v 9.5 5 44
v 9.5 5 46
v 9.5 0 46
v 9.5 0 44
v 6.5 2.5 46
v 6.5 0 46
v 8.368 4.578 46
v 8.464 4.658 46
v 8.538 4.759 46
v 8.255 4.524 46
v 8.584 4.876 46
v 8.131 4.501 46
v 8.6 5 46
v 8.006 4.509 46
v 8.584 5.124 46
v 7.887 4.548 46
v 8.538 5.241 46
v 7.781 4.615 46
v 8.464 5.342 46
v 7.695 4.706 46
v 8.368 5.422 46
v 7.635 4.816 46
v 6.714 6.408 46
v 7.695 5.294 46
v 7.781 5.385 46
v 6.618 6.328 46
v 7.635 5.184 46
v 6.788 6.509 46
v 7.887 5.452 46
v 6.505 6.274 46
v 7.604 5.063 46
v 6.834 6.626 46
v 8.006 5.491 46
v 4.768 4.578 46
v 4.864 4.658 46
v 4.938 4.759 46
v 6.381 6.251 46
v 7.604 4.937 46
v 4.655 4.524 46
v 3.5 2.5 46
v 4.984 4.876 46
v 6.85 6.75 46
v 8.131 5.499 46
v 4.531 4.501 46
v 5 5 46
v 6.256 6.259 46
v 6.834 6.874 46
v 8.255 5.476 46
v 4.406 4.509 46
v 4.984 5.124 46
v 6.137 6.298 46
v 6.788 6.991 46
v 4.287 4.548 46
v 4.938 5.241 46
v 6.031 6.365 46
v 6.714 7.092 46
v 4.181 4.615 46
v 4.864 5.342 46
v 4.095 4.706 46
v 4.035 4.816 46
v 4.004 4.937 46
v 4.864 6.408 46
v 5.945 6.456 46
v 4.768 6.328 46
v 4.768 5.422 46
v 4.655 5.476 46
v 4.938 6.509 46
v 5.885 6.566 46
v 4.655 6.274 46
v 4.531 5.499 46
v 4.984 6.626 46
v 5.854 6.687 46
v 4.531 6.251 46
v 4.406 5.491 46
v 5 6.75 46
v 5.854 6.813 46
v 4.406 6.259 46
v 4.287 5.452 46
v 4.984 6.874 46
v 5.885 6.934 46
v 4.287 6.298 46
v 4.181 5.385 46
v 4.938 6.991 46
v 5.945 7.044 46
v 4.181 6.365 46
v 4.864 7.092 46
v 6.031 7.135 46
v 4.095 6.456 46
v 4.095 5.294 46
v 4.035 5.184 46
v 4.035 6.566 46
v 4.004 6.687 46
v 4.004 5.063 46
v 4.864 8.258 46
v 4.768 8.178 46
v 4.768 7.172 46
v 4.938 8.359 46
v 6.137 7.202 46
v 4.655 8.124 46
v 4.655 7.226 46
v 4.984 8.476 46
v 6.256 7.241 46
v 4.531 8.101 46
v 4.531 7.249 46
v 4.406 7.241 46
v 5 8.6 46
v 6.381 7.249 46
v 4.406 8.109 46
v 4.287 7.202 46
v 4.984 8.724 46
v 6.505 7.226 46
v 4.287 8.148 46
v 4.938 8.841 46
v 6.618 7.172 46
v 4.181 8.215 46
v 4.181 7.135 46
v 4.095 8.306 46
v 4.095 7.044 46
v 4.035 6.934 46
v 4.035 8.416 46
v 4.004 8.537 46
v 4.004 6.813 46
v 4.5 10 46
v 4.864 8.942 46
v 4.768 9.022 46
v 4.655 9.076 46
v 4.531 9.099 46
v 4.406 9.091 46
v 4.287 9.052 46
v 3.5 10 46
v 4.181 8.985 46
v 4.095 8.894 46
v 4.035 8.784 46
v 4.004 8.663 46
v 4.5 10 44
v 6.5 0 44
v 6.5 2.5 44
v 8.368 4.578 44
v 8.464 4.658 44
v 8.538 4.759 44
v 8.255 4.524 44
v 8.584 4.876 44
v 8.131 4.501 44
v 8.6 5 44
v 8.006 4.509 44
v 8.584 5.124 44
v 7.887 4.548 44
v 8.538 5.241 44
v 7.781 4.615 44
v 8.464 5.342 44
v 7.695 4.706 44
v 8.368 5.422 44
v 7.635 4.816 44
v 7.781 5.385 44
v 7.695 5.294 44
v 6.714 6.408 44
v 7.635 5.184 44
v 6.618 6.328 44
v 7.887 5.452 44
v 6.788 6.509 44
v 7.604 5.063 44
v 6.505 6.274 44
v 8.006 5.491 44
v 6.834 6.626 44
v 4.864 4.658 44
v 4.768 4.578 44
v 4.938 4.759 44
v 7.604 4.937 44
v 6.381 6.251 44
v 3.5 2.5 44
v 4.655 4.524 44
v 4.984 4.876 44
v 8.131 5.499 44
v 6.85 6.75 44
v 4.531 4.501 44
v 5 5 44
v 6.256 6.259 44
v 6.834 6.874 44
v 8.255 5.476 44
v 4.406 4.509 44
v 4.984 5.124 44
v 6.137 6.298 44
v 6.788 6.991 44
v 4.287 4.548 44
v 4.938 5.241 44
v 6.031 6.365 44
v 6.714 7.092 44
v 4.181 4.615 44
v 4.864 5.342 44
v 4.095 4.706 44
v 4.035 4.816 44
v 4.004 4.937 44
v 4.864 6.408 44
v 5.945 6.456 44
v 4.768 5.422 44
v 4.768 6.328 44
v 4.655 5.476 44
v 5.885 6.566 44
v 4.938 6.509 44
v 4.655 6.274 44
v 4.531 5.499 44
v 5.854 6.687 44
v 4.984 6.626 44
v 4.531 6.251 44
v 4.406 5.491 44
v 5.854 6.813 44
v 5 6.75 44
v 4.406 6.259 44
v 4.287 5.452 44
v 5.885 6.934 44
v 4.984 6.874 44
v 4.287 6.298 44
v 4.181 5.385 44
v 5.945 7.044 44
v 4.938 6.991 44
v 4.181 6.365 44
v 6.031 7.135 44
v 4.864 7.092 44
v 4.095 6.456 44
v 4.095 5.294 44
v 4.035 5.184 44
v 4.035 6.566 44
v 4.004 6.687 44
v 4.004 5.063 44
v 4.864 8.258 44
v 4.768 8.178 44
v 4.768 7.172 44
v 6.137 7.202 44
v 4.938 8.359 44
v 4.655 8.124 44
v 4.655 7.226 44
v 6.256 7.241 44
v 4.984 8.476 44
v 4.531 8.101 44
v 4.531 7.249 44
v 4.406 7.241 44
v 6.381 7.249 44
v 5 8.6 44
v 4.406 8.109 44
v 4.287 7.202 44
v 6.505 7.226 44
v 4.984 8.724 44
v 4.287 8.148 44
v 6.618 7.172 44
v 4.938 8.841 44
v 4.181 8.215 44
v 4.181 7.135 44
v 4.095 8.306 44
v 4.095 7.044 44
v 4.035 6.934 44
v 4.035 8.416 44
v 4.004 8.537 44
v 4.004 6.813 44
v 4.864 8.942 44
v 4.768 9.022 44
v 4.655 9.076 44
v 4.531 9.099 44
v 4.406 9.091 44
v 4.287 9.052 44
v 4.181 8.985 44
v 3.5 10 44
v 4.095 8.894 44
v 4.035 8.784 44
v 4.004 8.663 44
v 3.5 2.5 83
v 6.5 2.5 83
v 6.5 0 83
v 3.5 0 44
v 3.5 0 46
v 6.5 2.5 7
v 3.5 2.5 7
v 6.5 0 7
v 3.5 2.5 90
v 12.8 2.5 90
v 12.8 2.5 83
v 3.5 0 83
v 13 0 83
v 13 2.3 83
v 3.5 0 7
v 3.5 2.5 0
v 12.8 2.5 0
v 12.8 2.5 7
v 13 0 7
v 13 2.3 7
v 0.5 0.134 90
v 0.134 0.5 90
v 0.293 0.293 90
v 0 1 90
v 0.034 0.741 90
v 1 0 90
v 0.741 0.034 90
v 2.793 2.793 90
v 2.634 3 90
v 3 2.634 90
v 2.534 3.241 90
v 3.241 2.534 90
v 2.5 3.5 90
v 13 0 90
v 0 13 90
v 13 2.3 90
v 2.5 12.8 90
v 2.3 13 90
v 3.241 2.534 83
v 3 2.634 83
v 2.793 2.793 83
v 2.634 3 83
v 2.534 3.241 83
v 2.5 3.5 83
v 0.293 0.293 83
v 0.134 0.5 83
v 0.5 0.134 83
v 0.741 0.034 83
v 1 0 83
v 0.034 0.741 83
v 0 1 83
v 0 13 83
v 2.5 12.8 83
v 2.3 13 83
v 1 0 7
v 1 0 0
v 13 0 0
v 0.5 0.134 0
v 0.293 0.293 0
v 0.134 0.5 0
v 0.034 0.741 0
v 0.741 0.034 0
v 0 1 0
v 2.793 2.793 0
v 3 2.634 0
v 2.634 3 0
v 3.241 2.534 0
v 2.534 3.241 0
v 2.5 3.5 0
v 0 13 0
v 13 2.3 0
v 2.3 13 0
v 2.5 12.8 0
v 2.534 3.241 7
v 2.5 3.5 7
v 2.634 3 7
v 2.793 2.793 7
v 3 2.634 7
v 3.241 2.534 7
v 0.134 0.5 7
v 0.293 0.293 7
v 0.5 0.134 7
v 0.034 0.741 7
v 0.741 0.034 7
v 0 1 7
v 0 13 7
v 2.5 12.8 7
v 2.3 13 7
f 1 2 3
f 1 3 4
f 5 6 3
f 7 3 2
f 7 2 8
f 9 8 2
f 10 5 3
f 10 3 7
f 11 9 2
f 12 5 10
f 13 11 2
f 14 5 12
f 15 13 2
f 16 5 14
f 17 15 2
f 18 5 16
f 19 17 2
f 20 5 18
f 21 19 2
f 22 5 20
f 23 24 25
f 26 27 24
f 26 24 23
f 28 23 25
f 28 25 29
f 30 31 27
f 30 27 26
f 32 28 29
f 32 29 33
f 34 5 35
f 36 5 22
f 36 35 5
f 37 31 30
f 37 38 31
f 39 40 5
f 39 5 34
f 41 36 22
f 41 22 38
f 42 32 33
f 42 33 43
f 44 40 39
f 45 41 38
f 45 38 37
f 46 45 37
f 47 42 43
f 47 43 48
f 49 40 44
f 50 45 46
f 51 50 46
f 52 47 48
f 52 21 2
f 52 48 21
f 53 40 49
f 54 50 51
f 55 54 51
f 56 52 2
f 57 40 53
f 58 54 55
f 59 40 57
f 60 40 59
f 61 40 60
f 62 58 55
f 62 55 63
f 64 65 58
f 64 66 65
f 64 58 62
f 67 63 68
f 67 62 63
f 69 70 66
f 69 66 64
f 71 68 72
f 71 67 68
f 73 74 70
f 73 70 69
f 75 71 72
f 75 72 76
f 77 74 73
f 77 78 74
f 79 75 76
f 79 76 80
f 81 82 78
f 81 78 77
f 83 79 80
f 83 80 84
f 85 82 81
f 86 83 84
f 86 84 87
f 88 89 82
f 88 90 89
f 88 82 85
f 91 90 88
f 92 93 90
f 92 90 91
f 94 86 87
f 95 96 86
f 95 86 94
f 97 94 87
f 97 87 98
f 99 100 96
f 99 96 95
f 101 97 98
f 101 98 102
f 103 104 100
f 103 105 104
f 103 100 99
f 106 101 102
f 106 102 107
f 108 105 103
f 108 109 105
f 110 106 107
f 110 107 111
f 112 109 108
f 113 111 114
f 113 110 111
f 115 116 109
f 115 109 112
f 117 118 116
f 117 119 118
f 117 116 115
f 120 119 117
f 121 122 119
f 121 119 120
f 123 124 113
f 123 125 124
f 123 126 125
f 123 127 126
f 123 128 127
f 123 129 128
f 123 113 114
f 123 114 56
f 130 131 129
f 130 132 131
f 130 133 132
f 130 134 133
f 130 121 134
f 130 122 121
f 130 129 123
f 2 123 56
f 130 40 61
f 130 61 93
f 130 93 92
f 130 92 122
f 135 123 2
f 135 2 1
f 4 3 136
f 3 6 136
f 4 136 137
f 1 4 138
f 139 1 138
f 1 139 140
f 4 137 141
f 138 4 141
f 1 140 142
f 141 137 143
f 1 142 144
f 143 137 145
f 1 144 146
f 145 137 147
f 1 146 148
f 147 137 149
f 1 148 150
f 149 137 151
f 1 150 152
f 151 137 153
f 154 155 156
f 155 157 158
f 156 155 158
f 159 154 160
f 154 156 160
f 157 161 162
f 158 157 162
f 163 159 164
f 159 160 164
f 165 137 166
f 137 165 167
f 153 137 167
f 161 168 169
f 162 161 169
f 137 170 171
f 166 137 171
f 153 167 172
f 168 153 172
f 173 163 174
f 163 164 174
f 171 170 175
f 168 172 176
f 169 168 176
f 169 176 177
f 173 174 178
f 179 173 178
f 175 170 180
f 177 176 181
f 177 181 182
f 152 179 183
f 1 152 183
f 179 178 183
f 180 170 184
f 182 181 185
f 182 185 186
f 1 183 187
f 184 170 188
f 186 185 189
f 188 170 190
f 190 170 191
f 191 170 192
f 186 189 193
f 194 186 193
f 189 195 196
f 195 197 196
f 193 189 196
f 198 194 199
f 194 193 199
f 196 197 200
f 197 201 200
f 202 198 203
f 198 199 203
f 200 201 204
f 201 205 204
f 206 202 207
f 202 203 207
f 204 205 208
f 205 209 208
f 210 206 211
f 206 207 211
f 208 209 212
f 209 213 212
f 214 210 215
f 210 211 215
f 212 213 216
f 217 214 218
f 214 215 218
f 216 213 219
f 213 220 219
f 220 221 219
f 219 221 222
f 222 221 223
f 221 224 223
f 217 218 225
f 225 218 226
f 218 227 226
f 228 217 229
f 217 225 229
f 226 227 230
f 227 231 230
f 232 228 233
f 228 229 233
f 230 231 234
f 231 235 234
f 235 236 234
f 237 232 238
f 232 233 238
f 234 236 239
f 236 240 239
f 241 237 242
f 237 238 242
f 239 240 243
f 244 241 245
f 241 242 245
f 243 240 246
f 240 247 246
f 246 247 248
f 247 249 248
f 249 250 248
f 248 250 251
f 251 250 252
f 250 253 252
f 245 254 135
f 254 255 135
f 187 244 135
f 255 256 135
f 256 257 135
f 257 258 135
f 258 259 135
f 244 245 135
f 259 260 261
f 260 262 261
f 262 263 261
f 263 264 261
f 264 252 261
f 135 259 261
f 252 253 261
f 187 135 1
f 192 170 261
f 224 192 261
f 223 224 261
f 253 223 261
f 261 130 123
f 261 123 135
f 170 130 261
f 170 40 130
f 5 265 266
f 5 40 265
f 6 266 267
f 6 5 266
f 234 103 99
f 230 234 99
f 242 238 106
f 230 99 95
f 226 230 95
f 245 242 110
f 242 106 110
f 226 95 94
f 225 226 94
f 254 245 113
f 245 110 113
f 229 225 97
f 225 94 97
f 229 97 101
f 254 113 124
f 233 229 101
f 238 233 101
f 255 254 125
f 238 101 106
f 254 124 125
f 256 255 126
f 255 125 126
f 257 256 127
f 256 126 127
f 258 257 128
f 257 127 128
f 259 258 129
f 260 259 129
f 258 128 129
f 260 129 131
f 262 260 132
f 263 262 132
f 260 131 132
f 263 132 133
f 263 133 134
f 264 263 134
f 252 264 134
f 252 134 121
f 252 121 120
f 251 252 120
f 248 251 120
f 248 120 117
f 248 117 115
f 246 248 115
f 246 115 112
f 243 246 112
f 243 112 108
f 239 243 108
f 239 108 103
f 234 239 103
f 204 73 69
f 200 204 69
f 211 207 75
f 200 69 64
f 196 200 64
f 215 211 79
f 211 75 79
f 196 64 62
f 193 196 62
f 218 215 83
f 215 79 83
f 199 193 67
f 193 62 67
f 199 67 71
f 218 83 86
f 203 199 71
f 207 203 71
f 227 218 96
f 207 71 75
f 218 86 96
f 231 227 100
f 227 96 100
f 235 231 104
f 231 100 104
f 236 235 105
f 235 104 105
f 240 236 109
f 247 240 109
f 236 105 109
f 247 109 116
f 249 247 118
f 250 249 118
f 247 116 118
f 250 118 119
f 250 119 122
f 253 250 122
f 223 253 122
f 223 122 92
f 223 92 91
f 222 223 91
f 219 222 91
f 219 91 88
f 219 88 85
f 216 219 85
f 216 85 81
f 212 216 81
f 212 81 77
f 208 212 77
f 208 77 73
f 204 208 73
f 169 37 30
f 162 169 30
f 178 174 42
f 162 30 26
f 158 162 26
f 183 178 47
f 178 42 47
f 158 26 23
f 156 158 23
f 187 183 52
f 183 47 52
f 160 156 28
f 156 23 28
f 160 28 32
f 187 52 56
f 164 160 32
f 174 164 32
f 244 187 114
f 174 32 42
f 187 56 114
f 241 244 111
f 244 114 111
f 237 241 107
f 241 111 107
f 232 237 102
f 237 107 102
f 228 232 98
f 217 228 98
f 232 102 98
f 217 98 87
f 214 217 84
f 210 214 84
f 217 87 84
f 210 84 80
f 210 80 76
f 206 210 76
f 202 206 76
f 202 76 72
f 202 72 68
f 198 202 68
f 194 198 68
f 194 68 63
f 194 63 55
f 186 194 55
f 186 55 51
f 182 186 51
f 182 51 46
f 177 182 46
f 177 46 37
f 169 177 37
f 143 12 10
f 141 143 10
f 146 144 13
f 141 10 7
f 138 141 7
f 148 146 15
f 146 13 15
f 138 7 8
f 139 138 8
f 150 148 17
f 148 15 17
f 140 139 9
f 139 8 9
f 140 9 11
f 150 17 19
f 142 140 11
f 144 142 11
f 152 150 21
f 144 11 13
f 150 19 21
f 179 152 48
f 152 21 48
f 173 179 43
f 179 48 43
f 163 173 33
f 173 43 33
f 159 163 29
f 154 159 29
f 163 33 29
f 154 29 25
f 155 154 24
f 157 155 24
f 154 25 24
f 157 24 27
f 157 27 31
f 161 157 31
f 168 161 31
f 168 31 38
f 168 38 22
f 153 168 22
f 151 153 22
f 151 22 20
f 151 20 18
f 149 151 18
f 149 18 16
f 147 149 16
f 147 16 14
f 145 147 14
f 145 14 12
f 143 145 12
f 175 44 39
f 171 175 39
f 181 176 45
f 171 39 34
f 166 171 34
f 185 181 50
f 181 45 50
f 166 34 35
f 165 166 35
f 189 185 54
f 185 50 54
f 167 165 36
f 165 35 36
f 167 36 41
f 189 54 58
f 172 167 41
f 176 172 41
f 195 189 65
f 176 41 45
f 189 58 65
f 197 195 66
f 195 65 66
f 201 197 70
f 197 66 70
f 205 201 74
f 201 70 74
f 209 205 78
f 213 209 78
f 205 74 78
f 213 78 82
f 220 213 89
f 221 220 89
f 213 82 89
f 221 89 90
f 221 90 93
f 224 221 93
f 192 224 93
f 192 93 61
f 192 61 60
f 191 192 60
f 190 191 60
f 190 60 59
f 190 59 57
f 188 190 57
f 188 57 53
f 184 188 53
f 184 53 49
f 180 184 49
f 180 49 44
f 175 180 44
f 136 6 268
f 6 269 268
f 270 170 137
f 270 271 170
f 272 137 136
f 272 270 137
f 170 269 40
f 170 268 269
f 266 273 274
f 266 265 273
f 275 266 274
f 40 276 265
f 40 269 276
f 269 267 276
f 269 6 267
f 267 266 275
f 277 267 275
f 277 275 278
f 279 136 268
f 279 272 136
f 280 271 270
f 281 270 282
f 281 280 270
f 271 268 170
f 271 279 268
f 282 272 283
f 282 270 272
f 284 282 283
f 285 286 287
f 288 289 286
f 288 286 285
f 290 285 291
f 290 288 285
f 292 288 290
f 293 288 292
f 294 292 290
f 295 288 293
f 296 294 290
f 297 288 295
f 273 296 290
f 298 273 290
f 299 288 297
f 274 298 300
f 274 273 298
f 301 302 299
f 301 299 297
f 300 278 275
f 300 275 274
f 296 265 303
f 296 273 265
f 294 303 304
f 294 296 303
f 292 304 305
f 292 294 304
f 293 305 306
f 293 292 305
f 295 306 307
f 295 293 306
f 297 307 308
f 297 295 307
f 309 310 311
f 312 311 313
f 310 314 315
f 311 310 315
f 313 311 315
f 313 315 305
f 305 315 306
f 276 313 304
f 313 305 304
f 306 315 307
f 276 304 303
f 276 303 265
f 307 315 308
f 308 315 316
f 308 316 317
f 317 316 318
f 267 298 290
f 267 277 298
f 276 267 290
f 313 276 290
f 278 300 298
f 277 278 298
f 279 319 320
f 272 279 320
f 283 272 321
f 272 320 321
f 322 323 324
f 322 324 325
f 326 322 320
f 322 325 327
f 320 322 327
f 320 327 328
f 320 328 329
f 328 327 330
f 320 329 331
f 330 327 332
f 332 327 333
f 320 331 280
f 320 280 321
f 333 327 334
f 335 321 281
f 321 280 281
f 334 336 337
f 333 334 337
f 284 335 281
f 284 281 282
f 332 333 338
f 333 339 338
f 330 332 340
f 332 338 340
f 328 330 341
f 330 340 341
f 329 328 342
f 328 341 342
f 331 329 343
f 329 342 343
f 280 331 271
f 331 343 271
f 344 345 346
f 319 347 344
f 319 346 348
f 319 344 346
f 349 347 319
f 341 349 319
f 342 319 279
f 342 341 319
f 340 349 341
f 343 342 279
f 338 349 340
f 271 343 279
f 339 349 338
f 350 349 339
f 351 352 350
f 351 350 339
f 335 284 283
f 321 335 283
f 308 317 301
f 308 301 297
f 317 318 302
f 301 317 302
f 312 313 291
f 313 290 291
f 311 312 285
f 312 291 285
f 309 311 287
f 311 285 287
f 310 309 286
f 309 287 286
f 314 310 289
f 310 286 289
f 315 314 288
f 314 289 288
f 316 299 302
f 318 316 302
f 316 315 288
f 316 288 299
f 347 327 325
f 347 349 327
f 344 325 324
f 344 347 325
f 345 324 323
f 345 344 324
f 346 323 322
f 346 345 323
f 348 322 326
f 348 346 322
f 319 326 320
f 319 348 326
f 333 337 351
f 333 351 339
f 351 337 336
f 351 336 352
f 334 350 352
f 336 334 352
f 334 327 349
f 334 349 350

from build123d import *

# Parameters (mm, degrees)
PAD_DEPTH       = 7
FILLET_R        = 1
FILLET001_R     = 1
CHAMFER_SIZE    = 0.2
CHAMFER001_SIZE = 0.2
SKETCH001_W     = 3
SKETCH001_H     = 2.5
PAD001_DEPTH    = 76
PAD002_DEPTH    = 7
FILLET002_R     = 1
FILLET003_R     = 1
CHAMFER002_SIZE = 0.2
CHAMFER003_SIZE = 0.2
SKETCH003_W     = 10
SKETCH003_H     = 2
PAD003_DEPTH    = 3
CHAMFER004_SIZE = 5
SKETCH004_R     = 0.5
POCKET_DEPTH    = 46.001


with BuildPart() as part:
    # Sketch → Pad (new body)
    with BuildSketch(Plane.XY):
        Polygon((0, 0), (0, 13), (2.5, 13), (2.5, 2.5), (13, 2.5), (13, 0), align=None)
    extrude(amount=PAD_DEPTH)

    # Fillet
    fillet_edges = [part.edges().sort_by_distance(p)[0] for p in [
        (2.5, 2.5, 3.5),
    ]]
    fillet(fillet_edges, radius=FILLET_R)

    # Fillet001
    fillet001_edges = [part.edges().sort_by_distance(p)[0] for p in [
        (0, 0, 3.5),
    ]]
    fillet(fillet001_edges, radius=FILLET001_R)

    # Chamfer
    chamfer_edges = [part.edges().sort_by_distance(p)[0] for p in [
        (2.5, 13, 3.5),
    ]]
    chamfer(chamfer_edges, length=CHAMFER_SIZE)

    # Chamfer001
    chamfer001_edges = [part.edges().sort_by_distance(p)[0] for p in [
        (13, 2.5, 3.5),
    ]]
    chamfer(chamfer001_edges, length=CHAMFER001_SIZE)

    # Sketch001 → Pad001 (new body)
    with BuildSketch(Plane.XY.offset(7)):
        with Locations((5, 1.25)):
            Rectangle(SKETCH001_W, SKETCH001_H)
    extrude(amount=PAD001_DEPTH)

    # Sketch002 → Pad002 (new body)
    with BuildSketch(Plane.XY.offset(83)):
        Polygon((2.5, 2.5), (13, 2.5), (13, 0), (0, 0), (0, 13), (2.5, 13), align=None)
    extrude(amount=PAD002_DEPTH)

    # Fillet002
    fillet002_edges = [part.edges().sort_by_distance(p)[0] for p in [
        (0, 0, 86.5),
    ]]
    fillet(fillet002_edges, radius=FILLET002_R)

    # Fillet003
    fillet003_edges = [part.edges().sort_by_distance(p)[0] for p in [
        (2.5, 2.5, 86.5),
    ]]
    fillet(fillet003_edges, radius=FILLET003_R)

    # Chamfer002
    chamfer002_edges = [part.edges().sort_by_distance(p)[0] for p in [
        (2.5, 13, 86.5),
    ]]
    chamfer(chamfer002_edges, length=CHAMFER002_SIZE)

    # Chamfer003
    chamfer003_edges = [part.edges().sort_by_distance(p)[0] for p in [
        (13, 2.5, 86.5),
    ]]
    chamfer(chamfer003_edges, length=CHAMFER003_SIZE)

    # Sketch003 → Pad003 (new body, symmetric)
    with BuildSketch(Plane.YZ.offset(6.5)):
        with Locations((5, 45)):
            Rectangle(SKETCH003_W, SKETCH003_H)
    extrude(amount=PAD003_DEPTH, both=True)

    # Chamfer004
    chamfer004_edges = [part.edges().sort_by_distance(p)[0] for p in [
        (9.5, 10, 45),
    ]]
    chamfer(chamfer004_edges, length=CHAMFER004_SIZE)

    # Sketch004 → Pocket (cut, through all)
    with BuildSketch(Plane.XY.offset(46)):
        with Locations((4.5, 8.6)):
            Circle(SKETCH004_R)
        with Locations((4.5, 6.75)):
            Circle(SKETCH004_R)
        with Locations((4.5, 5)):
            Circle(SKETCH004_R)
        with Locations((6.35, 6.75)):
            Circle(SKETCH004_R)
        with Locations((8.1, 5)):
            Circle(SKETCH004_R)
    extrude(amount=-POCKET_DEPTH, mode=Mode.SUBTRACT)


solid = part.part
